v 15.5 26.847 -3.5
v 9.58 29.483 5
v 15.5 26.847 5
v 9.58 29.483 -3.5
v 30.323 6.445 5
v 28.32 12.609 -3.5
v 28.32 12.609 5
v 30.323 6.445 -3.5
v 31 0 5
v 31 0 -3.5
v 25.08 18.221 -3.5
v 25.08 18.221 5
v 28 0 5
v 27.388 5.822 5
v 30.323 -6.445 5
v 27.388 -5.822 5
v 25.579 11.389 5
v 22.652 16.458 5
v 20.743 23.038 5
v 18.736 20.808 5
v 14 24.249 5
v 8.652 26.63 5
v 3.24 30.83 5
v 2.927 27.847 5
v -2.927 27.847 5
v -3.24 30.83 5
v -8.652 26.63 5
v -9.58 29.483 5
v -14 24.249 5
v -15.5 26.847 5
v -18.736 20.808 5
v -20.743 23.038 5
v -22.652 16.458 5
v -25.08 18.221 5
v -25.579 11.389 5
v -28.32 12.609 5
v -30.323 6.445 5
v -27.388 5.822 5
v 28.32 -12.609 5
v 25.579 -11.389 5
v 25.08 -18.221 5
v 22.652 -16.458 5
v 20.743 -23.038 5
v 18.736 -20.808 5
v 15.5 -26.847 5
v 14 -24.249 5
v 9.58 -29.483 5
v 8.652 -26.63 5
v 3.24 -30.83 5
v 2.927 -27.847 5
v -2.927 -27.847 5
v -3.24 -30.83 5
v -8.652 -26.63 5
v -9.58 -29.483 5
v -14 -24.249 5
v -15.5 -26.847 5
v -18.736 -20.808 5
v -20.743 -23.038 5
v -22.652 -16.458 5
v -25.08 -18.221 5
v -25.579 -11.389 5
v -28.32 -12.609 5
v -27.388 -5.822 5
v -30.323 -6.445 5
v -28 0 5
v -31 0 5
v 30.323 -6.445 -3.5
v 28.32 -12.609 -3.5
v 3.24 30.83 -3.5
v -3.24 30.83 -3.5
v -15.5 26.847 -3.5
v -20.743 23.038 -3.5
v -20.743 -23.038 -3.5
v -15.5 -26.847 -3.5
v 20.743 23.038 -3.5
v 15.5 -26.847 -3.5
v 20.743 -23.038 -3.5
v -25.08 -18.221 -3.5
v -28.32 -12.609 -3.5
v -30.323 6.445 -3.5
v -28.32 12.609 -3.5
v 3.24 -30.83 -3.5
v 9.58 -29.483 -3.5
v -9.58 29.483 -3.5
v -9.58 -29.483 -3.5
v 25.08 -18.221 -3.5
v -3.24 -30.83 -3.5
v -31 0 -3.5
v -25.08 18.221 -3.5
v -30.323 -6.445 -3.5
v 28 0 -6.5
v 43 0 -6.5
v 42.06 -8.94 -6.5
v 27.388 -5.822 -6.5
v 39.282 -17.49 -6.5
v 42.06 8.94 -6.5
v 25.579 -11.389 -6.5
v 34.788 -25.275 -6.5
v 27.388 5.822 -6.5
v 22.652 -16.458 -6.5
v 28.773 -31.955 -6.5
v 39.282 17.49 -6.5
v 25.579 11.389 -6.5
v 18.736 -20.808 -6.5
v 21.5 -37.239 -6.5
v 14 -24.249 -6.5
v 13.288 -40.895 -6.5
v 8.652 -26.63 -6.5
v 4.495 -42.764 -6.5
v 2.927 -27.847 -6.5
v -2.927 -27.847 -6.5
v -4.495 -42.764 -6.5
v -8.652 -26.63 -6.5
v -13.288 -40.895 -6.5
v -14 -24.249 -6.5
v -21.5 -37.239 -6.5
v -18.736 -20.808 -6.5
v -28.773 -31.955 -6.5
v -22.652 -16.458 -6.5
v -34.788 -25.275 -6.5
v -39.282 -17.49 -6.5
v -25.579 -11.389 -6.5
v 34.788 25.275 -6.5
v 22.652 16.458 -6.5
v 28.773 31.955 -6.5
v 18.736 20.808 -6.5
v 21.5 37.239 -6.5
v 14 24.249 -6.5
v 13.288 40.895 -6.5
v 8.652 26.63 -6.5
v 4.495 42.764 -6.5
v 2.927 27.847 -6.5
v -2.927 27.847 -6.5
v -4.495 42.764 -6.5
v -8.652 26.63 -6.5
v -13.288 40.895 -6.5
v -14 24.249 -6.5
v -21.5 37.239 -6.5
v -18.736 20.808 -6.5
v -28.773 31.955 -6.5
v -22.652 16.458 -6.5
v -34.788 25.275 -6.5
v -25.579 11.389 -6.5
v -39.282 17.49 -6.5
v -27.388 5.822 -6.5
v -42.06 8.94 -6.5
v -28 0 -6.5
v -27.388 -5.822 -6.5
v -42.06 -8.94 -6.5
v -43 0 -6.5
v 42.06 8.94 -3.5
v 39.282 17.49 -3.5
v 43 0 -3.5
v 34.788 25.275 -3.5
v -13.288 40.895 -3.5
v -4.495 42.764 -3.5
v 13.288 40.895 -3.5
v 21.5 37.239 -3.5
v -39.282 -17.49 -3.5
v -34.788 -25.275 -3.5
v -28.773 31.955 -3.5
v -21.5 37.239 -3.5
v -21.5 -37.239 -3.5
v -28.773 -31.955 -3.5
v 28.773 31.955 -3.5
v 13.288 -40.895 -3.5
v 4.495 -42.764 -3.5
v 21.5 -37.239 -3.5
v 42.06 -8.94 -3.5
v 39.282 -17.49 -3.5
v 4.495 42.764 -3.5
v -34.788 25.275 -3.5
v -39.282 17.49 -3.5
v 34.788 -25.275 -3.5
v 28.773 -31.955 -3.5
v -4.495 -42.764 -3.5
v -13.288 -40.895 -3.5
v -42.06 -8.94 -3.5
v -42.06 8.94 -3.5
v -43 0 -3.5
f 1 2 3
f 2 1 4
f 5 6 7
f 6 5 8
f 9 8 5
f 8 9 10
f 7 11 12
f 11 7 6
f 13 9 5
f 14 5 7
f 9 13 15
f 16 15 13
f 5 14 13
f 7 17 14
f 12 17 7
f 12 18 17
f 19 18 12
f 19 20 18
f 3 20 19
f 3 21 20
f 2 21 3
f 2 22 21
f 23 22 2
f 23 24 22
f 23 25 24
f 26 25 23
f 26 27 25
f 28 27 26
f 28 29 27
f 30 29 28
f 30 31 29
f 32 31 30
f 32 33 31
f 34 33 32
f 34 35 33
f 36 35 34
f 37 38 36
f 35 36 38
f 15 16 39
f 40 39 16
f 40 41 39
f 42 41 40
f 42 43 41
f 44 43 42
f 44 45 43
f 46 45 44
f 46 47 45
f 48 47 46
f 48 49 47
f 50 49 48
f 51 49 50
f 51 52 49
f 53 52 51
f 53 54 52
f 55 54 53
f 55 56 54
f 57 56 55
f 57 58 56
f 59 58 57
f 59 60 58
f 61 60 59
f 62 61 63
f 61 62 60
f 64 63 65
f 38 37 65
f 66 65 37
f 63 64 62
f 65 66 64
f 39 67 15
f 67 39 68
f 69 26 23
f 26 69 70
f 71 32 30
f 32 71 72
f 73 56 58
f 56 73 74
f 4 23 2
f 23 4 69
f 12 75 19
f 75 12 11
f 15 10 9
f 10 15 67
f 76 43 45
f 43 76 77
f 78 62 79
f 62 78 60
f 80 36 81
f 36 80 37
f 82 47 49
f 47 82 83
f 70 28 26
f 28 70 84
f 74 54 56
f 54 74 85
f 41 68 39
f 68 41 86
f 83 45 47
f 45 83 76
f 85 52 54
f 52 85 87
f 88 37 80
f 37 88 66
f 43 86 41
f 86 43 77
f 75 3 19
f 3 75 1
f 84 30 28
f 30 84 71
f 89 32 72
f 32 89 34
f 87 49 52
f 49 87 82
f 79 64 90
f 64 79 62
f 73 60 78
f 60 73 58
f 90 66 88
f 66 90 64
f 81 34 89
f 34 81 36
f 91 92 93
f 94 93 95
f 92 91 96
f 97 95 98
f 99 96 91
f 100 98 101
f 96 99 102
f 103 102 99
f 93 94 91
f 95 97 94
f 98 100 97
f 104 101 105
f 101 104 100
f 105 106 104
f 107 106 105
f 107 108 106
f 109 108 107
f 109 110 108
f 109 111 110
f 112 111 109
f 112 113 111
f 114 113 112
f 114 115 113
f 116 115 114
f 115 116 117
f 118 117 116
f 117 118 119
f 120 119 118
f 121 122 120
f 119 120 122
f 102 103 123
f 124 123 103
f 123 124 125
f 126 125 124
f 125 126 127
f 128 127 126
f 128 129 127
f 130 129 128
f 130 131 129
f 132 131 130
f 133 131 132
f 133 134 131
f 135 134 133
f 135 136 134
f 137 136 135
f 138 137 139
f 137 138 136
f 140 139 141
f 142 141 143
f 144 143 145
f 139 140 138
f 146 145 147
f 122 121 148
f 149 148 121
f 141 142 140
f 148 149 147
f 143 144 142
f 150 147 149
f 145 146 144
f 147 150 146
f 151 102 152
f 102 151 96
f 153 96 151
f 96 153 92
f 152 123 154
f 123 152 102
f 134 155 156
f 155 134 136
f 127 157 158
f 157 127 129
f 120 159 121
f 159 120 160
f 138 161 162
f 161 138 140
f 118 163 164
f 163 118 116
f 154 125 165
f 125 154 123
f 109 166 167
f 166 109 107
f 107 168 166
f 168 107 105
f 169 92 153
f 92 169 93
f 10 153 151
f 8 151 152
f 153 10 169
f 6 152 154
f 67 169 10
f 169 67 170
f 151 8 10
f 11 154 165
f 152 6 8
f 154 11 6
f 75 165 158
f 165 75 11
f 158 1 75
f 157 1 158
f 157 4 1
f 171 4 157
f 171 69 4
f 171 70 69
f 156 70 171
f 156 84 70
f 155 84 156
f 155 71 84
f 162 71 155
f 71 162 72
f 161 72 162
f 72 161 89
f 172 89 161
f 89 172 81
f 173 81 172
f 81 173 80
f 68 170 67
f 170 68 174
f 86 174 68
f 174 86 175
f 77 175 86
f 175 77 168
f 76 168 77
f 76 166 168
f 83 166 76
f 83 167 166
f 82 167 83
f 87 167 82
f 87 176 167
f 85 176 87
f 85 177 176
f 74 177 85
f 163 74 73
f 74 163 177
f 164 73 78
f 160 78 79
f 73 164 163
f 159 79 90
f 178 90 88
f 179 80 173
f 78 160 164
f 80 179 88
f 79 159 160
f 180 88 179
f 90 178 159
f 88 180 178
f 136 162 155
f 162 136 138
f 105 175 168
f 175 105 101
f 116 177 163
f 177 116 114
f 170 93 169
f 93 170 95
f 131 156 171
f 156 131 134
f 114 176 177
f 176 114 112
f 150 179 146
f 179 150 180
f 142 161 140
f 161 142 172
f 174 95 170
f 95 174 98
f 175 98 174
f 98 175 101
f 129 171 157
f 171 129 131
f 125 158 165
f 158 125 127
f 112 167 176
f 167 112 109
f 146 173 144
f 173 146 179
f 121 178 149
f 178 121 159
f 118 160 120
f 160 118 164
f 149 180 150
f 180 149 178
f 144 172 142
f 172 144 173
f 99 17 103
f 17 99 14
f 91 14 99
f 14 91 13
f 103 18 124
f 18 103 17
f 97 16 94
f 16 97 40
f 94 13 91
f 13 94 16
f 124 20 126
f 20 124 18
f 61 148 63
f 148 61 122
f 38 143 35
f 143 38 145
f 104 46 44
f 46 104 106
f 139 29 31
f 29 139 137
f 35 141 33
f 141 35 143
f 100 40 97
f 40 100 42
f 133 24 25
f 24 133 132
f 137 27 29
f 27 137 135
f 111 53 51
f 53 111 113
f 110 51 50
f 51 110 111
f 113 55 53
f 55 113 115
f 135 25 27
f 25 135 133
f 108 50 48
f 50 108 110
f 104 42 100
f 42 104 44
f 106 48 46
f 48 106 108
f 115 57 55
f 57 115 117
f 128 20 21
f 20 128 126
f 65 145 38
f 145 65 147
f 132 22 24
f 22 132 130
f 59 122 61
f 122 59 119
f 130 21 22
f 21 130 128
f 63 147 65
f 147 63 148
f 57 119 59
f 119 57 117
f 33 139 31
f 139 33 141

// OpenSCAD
DIAMETER=62;
DEPTH=10;
OFFSET=3;

difference() {
  union() {
    // Insert
    cylinder(r=(DIAMETER / 2), h=DEPTH, center=true);

    // Top cover
    translate([0, 0, -(DEPTH / 2)])
      cylinder(r=(DIAMETER / 2) + 12, h=OFFSET, center=true);
  }

  // Cutout trench
  #cylinder(r=(DIAMETER / 2) - OFFSET, h=DEPTH * 2, center=true);
}
